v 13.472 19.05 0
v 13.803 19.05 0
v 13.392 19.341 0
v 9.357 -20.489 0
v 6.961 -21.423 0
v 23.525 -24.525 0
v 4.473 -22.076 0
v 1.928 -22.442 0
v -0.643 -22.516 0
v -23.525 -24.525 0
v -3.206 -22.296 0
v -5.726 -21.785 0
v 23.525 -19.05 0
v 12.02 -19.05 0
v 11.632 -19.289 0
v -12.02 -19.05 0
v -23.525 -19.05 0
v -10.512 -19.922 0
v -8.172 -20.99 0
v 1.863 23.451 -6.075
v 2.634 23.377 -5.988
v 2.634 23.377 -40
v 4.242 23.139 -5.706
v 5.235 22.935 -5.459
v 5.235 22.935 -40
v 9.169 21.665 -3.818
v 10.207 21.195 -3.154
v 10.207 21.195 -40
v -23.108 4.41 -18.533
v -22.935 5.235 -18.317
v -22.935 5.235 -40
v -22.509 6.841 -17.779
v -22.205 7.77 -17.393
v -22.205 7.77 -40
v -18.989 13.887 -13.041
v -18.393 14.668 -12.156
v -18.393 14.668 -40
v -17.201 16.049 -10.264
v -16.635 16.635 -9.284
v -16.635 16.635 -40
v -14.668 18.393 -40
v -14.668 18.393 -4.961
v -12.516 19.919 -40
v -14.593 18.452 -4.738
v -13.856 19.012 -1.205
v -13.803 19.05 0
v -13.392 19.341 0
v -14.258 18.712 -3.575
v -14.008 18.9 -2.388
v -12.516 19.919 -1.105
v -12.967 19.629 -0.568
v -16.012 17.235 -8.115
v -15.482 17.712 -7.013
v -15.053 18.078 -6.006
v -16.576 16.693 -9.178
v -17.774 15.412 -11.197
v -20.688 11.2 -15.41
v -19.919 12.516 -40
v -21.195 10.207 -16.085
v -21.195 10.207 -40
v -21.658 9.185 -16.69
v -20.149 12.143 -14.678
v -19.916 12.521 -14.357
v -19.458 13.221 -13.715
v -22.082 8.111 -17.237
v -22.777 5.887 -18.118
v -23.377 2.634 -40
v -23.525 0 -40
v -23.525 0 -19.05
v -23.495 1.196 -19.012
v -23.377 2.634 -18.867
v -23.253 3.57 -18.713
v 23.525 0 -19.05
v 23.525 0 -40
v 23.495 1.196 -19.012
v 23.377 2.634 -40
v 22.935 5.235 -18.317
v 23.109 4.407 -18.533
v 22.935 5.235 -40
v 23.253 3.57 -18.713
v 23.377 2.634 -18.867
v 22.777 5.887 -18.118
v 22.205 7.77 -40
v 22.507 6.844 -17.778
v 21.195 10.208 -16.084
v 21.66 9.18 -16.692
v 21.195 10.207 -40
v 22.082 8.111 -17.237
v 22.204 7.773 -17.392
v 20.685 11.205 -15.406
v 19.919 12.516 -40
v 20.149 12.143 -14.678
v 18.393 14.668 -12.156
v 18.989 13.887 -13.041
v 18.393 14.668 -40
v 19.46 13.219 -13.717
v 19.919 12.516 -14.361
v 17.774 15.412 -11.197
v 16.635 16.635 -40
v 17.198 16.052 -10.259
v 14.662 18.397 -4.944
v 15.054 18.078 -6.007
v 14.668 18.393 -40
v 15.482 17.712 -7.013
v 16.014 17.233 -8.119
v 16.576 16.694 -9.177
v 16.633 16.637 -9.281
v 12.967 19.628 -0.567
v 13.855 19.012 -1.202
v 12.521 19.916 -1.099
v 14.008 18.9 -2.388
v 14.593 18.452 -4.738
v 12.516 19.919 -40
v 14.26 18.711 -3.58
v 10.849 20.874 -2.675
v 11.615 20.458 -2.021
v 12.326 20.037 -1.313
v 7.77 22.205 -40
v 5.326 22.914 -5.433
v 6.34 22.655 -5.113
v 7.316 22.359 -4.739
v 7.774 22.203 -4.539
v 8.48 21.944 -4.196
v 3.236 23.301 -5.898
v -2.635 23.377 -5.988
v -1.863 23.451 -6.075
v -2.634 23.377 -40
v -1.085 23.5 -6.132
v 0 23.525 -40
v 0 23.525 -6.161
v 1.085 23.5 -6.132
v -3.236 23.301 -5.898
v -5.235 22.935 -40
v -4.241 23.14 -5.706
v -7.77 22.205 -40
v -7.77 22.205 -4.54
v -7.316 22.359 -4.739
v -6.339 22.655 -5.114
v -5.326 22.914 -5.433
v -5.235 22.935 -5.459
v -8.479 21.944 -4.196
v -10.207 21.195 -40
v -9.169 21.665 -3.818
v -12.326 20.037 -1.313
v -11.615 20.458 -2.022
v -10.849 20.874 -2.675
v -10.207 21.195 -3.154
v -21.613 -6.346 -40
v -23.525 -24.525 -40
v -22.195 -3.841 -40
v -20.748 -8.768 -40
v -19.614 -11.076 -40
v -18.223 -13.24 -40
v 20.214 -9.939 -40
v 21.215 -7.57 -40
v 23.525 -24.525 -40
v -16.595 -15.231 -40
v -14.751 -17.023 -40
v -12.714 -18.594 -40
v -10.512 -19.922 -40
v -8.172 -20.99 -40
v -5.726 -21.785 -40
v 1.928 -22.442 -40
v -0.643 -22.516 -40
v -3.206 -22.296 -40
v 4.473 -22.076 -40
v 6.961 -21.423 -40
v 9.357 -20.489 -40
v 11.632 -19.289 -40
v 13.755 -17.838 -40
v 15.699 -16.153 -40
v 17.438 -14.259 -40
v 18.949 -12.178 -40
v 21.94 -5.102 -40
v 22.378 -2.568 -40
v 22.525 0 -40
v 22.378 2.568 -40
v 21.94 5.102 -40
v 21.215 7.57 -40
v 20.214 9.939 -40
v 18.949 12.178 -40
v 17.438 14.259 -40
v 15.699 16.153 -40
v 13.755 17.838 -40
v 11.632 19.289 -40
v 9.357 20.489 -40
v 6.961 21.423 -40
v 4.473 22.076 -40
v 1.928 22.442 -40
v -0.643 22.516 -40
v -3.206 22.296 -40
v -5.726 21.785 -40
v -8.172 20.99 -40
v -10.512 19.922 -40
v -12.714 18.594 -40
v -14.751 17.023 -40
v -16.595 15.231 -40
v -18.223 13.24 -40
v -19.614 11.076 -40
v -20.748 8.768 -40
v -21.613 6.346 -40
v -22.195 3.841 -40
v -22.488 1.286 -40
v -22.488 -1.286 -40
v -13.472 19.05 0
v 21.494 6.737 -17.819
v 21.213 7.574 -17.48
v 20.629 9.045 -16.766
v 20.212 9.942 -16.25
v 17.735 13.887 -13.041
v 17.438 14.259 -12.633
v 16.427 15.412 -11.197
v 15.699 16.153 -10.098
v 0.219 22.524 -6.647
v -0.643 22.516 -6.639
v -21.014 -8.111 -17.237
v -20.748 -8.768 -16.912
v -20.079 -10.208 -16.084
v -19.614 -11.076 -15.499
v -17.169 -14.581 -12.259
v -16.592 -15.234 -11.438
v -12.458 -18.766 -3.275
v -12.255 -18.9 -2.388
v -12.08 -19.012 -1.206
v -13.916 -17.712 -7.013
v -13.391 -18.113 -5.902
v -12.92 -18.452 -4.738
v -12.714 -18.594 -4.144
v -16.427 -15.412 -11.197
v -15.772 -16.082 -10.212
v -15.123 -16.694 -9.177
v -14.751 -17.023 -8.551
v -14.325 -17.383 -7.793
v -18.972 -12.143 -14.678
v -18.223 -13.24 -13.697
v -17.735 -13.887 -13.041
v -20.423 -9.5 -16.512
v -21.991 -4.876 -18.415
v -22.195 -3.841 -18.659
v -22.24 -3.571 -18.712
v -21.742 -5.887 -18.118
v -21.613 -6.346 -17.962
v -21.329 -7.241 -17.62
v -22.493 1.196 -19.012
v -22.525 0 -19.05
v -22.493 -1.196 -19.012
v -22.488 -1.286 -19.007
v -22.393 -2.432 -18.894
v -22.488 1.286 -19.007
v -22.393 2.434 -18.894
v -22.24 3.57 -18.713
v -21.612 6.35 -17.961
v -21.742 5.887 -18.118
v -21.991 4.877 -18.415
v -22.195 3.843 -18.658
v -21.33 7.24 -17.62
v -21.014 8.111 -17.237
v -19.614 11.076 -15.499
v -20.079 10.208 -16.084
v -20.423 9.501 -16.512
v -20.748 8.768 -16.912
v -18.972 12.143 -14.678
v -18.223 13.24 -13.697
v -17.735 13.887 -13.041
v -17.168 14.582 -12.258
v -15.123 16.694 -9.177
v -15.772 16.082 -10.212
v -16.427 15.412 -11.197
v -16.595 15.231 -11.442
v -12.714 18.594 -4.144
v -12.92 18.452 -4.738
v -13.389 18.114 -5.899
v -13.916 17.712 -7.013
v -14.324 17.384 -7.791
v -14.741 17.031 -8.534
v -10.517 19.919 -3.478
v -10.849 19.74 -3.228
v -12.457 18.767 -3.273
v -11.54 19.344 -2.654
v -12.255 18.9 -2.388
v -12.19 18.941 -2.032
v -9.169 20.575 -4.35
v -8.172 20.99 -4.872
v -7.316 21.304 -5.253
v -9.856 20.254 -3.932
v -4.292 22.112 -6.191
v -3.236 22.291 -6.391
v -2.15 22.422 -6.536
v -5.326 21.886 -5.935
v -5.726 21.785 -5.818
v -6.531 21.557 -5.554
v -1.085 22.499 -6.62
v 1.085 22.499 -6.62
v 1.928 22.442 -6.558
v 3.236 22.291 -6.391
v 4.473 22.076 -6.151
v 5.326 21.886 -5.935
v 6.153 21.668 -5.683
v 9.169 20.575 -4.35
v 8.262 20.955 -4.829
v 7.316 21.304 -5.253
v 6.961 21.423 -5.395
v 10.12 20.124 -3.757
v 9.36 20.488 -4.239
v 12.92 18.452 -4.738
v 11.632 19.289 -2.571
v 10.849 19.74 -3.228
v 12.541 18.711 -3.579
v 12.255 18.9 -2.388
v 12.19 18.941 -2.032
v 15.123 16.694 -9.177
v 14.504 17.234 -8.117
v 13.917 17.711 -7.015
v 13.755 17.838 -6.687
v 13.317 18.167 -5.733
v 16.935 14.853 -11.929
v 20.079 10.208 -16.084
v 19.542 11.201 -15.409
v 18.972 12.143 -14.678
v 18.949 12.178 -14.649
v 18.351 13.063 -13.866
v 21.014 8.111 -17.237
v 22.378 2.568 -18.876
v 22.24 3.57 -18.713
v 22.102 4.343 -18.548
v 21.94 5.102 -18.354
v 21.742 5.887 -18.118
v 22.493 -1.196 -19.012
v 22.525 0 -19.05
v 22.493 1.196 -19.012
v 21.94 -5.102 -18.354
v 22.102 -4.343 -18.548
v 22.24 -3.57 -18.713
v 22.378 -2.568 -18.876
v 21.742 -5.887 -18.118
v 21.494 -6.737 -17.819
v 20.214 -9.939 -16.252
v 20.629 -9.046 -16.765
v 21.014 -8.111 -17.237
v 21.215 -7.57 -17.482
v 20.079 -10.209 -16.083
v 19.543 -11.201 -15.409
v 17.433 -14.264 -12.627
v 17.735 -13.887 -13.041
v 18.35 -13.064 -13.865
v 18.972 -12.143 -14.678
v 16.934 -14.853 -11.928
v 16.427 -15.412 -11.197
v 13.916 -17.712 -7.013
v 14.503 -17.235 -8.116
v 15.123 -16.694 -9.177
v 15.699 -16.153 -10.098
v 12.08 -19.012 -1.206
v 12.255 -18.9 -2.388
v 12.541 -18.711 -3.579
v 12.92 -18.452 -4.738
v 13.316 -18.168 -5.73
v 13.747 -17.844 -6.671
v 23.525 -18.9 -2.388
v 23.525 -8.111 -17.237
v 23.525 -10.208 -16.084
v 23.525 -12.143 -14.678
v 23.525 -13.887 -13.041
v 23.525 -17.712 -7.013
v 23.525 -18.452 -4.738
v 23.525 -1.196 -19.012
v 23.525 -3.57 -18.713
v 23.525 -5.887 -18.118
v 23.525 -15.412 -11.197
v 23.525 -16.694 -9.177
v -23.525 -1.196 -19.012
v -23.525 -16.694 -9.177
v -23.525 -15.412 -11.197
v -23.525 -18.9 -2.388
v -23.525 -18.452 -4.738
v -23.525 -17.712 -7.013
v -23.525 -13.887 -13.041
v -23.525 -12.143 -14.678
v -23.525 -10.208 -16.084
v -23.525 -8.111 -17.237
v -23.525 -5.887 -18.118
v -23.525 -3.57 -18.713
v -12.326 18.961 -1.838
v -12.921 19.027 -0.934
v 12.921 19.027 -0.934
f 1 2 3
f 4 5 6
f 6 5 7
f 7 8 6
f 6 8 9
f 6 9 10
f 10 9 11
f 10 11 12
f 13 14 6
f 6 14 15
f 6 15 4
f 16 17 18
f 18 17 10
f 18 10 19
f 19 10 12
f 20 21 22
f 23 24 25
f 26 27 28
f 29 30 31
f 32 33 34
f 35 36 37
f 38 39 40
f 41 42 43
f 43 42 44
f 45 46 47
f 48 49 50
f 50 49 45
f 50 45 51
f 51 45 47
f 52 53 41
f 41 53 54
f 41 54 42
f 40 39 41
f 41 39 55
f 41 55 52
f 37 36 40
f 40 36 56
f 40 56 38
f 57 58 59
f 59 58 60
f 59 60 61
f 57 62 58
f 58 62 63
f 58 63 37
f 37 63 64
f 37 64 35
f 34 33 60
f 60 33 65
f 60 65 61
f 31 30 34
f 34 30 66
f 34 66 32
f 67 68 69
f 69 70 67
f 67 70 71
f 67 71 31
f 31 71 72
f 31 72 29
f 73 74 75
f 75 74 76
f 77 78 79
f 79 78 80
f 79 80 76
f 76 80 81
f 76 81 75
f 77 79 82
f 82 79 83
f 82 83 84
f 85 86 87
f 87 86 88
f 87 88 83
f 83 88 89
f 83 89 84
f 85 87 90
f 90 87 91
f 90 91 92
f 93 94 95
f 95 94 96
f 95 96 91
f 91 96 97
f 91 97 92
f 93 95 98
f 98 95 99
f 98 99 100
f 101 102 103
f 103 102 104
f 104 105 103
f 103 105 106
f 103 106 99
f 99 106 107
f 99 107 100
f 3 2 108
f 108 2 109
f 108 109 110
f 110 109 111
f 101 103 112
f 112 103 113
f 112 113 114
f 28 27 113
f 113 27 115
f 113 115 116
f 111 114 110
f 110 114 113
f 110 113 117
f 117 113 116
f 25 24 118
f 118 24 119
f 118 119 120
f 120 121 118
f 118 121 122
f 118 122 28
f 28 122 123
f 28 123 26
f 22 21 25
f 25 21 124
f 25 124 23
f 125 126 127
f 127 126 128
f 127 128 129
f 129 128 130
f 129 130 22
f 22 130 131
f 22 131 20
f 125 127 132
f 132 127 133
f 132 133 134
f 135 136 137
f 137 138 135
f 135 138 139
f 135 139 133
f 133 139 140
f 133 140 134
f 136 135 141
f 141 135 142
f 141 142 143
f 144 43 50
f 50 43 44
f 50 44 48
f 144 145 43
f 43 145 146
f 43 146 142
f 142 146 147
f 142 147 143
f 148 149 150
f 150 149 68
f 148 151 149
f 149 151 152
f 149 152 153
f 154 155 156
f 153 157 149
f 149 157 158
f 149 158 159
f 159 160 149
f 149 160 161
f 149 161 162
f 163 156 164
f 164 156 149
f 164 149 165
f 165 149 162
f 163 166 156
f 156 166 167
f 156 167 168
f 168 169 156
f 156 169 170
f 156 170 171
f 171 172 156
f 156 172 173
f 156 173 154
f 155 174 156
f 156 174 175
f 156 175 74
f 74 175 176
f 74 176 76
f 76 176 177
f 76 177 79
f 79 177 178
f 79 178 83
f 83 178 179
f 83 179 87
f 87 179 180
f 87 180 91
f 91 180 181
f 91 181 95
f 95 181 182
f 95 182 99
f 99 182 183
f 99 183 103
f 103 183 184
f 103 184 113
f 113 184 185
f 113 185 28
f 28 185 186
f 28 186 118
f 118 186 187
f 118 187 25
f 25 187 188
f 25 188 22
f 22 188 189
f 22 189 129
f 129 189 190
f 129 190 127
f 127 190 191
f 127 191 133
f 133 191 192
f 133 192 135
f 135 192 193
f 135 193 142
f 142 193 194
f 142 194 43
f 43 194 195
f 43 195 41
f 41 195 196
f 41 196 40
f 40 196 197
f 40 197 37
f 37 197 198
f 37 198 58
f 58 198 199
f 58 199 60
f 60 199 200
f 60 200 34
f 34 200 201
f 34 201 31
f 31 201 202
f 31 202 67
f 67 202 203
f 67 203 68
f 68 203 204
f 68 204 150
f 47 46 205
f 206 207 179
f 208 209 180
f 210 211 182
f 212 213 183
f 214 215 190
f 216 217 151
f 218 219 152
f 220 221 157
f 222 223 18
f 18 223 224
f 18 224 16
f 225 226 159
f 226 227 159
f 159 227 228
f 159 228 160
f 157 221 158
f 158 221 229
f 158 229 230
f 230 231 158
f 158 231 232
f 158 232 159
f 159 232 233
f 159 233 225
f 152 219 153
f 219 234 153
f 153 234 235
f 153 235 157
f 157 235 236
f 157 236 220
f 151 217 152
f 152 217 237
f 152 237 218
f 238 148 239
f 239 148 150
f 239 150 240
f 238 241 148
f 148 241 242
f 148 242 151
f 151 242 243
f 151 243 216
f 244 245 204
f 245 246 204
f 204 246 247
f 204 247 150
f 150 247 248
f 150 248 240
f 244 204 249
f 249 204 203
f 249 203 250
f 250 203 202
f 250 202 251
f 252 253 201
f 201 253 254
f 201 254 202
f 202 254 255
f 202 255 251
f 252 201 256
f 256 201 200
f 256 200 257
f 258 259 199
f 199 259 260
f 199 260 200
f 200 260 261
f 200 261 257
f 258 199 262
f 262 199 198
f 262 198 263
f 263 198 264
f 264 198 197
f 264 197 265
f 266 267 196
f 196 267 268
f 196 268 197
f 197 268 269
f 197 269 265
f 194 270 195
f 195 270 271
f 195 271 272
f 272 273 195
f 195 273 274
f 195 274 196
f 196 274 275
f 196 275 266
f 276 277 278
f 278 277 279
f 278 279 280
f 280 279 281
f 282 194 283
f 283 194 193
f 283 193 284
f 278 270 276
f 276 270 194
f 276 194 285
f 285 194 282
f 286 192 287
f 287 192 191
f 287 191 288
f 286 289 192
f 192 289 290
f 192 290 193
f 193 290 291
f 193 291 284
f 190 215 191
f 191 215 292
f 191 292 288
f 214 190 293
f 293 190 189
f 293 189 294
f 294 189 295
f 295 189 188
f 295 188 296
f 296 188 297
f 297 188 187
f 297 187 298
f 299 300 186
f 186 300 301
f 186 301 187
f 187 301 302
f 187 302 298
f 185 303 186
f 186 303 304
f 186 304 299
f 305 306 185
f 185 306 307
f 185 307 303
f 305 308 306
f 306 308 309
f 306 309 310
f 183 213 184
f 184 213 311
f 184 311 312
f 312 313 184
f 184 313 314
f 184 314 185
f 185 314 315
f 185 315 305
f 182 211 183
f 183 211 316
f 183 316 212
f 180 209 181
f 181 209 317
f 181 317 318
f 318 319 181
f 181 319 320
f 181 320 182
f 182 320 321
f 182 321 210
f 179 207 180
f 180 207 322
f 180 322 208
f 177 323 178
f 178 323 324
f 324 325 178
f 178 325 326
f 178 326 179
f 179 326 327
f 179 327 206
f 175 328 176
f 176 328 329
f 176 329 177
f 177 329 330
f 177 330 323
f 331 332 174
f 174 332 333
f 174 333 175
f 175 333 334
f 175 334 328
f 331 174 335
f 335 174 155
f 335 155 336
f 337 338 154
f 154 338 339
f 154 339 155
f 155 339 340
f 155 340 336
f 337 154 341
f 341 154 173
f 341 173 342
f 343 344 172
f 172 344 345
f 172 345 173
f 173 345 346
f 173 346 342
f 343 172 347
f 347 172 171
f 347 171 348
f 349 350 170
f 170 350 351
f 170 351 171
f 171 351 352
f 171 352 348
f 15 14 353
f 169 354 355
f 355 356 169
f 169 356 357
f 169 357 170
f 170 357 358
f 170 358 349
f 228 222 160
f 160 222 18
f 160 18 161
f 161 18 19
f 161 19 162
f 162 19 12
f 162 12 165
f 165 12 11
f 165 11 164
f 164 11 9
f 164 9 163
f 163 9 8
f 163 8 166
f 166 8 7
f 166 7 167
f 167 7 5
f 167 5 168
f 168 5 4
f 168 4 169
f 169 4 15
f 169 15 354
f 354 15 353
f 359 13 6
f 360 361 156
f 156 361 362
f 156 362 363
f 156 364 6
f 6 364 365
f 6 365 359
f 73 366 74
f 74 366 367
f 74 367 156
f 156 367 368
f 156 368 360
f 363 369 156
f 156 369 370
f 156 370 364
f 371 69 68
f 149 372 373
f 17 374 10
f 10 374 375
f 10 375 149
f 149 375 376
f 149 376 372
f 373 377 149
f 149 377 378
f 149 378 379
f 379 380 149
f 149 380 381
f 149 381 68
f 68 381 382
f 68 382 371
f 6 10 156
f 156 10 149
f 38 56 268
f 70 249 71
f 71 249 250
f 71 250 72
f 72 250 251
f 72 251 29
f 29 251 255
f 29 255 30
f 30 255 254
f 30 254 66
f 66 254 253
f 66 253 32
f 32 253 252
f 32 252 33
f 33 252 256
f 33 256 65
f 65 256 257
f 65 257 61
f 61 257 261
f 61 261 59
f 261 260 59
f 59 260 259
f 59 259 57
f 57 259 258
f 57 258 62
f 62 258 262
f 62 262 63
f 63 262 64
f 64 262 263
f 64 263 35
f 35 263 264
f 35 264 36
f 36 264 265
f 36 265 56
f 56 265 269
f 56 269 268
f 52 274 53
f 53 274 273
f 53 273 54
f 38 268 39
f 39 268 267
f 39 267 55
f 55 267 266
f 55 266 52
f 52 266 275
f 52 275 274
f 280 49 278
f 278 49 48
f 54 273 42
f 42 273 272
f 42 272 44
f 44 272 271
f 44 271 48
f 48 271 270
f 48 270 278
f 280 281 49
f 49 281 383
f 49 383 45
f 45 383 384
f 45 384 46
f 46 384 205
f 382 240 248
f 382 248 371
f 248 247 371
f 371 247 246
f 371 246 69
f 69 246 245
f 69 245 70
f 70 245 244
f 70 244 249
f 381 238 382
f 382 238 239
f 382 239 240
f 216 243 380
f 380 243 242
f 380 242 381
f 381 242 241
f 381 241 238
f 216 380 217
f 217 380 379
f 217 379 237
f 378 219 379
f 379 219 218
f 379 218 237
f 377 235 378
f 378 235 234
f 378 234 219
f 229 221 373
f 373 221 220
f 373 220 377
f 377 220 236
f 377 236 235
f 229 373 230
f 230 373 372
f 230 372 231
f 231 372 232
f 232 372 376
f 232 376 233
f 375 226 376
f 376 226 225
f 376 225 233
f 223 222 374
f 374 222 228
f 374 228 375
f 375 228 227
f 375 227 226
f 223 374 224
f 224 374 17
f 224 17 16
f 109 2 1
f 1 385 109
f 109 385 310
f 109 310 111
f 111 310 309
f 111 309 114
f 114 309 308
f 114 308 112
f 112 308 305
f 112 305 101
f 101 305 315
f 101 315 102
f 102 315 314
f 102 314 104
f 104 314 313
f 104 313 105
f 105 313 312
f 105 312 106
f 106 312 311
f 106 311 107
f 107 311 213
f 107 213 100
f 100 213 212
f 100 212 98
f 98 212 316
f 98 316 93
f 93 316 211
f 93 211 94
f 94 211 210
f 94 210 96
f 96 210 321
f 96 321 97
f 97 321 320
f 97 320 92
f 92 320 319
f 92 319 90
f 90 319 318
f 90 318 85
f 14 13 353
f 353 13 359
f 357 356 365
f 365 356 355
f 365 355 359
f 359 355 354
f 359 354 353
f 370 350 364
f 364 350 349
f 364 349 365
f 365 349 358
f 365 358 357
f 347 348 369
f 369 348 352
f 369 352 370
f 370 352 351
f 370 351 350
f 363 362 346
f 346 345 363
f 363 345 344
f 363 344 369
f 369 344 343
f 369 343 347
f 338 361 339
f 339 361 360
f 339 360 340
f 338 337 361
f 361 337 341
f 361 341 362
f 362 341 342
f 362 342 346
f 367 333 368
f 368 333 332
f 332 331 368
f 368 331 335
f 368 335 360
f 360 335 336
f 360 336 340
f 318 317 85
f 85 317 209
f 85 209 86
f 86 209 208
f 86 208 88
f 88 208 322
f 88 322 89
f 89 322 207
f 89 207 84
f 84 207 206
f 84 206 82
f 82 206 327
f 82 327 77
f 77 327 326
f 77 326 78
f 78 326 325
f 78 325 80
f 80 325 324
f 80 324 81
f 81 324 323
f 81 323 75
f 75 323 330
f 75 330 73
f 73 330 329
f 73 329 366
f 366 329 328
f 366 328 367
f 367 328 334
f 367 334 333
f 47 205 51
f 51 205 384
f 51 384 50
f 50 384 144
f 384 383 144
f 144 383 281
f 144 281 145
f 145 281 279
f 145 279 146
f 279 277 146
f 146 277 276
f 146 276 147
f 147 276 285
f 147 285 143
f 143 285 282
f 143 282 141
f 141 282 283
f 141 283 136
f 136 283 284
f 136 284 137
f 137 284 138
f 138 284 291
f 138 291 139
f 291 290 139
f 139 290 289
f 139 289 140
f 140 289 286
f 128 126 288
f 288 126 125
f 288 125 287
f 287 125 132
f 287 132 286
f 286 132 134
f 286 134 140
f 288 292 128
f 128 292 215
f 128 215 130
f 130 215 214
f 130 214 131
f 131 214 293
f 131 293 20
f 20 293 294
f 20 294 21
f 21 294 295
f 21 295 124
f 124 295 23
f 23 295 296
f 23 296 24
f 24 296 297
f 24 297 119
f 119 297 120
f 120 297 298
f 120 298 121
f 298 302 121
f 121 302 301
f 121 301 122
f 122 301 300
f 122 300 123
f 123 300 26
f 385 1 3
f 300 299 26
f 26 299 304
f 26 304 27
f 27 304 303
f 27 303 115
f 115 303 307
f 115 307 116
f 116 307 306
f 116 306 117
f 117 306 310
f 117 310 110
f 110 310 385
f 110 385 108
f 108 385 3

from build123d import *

# Parameters (mm, degrees)
SKETCH1_R           = 23.525
SKETCH1_R_2         = 22.525
BOSS_EXTRUDE1_DEPTH = 40
BOSS_EXTRUDE2_DEPTH = 40
SKETCH2_R           = 19.05
CUT_EXTRUDE1_DEPTH  = 59.025
SKETCH4_R           = 15.85
CUT_EXTRUDE2_DEPTH  = 22.144130073


with BuildPart() as part:
    # Sketch1 → Boss-Extrude1 (new body)
    with BuildSketch(Plane.XY):
        Circle(SKETCH1_R)
        Circle(SKETCH1_R_2, mode=Mode.SUBTRACT)
    extrude(amount=-BOSS_EXTRUDE1_DEPTH)

    # Sketch5 → Boss-Extrude2 (add)
    with BuildSketch(Plane(origin=(0, 0, -40), x_dir=(-1, 0, 0), z_dir=(0, 0, -1))):
        with BuildLine():
            ThreePointArc((0, -23.525), (-16.634687027, -16.634687027), (-23.525, 0))
            Line((-23.525, 0), (-23.525, -23.525))
            Line((-23.525, -23.525), (0, -23.525))
        make_face()
        with BuildLine():
            Line((23.525, -23.525), (23.525, 0))
            ThreePointArc((23.525, 0), (16.634687027, -16.634687027), (0, -23.525))
            Line((0, -23.525), (23.525, -23.525))
        make_face()
        Polygon((23.525, -23.525), (23.525, -24.525), (-23.525, -24.525), (-23.525, -23.525), (0, -23.525), align=None)
    extrude(amount=-BOSS_EXTRUDE2_DEPTH)

    # Sketch2 → Cut-Extrude1 (cut, through all)
    with BuildSketch(Plane(origin=(34.5, 0, 0), x_dir=(0, 0, -1), z_dir=(1, 0, 0))):
        Circle(SKETCH2_R)
    extrude(amount=-CUT_EXTRUDE1_DEPTH, mode=Mode.SUBTRACT)

    # Sketch4 → Cut-Extrude2 (cut, through all)
    with BuildSketch(Plane(origin=(0, 0, 0), x_dir=(1, 0, 0), z_dir=(0, -0.898794046, -0.438371147))):
        Circle(SKETCH4_R)
    extrude(amount=-CUT_EXTRUDE2_DEPTH, mode=Mode.SUBTRACT)


solid = part.part
